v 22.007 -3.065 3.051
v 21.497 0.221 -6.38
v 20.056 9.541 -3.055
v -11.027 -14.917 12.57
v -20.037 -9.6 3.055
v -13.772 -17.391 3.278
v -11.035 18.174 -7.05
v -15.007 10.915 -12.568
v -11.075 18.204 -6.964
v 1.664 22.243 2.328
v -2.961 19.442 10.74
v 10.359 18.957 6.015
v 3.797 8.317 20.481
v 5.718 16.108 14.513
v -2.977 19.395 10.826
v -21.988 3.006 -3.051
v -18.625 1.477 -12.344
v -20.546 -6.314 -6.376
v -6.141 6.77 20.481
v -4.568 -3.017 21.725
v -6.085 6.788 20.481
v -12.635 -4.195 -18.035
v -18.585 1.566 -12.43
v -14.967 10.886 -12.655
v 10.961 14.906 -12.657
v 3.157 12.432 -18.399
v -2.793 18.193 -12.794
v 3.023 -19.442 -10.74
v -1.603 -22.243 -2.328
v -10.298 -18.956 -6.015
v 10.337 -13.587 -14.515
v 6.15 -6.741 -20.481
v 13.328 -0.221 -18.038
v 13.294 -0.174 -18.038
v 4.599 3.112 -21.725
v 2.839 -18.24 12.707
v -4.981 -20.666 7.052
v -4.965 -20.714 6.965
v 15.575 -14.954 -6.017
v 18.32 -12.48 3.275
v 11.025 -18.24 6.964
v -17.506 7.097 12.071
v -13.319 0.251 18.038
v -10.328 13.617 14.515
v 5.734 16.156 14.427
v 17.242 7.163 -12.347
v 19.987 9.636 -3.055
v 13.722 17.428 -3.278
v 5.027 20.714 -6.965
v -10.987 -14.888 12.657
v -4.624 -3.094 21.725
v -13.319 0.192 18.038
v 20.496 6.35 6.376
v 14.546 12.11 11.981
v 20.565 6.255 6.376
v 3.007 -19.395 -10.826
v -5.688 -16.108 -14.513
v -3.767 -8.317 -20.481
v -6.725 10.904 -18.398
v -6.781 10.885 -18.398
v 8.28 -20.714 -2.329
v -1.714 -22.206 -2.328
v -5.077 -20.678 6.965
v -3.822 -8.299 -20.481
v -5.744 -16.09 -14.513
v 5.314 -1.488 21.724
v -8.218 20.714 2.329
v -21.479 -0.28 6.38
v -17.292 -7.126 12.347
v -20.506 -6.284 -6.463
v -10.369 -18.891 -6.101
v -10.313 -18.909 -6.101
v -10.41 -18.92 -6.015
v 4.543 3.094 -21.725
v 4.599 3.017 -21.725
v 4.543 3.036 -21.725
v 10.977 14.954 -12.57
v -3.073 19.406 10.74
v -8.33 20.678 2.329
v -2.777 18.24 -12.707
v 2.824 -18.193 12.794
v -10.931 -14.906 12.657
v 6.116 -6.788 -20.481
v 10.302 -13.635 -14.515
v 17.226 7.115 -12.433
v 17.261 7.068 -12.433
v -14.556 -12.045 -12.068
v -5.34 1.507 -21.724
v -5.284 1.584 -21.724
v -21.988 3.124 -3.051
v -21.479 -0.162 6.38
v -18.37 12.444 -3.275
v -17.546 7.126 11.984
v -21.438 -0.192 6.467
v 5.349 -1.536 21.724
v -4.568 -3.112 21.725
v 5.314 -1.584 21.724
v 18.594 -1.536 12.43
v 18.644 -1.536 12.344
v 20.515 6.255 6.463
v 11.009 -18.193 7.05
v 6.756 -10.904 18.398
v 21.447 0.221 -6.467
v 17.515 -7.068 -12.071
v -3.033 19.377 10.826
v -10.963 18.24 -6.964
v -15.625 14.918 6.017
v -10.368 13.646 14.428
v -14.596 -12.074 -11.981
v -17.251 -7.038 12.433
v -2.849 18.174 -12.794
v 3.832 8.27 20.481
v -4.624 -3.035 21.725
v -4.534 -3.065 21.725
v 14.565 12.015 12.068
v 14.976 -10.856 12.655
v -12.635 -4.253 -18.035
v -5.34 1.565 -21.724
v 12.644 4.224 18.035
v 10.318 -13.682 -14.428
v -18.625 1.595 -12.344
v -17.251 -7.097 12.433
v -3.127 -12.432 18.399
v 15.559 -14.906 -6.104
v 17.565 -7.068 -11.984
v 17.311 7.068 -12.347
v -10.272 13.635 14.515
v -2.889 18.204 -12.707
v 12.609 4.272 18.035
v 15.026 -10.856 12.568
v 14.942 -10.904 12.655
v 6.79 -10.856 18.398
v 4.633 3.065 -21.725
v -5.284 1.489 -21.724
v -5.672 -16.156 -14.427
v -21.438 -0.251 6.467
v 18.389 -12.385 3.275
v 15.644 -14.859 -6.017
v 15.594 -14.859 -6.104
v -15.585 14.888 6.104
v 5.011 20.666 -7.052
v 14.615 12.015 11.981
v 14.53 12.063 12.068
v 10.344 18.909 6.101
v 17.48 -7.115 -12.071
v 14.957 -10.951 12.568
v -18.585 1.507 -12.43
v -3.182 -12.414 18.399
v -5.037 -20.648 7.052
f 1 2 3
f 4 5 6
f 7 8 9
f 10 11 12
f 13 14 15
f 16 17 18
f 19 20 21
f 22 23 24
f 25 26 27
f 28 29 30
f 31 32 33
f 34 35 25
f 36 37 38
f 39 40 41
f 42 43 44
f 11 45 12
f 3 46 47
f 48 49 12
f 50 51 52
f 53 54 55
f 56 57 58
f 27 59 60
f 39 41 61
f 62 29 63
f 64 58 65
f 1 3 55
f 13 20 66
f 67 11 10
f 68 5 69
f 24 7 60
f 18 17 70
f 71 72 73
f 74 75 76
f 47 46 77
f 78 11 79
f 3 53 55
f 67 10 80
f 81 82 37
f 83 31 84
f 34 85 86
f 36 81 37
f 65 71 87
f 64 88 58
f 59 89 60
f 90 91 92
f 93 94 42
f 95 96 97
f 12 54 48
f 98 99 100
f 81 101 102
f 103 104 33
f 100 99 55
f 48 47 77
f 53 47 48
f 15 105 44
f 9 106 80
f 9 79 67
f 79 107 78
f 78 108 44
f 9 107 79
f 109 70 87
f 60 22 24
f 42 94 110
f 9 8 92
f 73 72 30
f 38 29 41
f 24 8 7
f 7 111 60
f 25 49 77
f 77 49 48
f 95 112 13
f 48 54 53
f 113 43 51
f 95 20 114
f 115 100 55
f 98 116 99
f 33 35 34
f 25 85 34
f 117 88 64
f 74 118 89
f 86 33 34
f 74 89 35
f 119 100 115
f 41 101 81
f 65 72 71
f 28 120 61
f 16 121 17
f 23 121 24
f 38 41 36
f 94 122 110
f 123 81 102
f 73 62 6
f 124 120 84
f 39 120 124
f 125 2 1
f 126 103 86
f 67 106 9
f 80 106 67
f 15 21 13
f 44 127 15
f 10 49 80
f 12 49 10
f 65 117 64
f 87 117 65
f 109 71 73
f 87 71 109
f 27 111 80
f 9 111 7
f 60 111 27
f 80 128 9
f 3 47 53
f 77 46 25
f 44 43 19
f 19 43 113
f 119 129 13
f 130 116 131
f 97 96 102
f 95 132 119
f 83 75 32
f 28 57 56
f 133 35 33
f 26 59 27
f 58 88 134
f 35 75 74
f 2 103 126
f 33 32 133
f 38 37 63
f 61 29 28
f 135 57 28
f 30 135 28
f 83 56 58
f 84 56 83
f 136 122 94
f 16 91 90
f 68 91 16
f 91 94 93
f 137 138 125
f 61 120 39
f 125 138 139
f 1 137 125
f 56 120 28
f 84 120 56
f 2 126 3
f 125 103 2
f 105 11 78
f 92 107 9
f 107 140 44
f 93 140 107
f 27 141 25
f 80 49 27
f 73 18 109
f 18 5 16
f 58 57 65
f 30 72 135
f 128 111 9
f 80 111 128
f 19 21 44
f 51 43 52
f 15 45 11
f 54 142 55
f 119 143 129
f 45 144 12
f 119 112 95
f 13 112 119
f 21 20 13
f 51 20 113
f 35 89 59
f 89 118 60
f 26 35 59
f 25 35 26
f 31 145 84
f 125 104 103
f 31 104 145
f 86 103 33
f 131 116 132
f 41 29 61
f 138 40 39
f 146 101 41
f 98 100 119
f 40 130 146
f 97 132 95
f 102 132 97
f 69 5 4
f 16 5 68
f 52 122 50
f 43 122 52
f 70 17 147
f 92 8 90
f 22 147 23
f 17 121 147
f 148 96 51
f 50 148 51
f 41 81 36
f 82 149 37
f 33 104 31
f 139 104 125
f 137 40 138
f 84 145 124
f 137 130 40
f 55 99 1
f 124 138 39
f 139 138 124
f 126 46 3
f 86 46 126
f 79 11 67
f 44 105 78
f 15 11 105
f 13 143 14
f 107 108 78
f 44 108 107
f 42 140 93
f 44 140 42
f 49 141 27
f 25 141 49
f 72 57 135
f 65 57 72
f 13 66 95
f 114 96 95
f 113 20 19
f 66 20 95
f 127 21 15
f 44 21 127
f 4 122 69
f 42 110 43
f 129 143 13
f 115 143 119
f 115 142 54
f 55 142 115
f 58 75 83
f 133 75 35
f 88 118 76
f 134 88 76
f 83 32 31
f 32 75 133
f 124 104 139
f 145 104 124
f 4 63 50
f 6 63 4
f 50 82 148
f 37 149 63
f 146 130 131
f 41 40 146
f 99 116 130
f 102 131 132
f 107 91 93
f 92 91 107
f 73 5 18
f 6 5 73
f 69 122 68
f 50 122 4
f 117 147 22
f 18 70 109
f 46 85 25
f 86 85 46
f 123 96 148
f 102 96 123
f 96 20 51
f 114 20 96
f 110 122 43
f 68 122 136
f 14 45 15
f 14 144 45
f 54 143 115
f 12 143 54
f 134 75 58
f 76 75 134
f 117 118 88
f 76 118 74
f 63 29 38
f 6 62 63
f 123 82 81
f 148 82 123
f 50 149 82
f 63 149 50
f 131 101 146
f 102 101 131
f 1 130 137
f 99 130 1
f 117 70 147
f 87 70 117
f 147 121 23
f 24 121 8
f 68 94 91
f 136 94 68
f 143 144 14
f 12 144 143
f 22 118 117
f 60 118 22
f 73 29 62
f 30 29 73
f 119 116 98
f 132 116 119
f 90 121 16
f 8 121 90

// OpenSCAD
// Auto-generated OpenSCAD file

    inner_points = 10*[[-1.259410789492946, -0.42240038123952733, -1.794870479655828], [2.046504762626686, 0.6255067460513934, 0.637635414443013], [-1.854421209195522, 0.1536113534238329, -1.234359032872204], [1.4514943429241103, 1.2015184807147539, 1.1981468612266366], [-1.4515200766782592, -1.2015120195725224, -1.1981468612266366], [1.854395475441373, -0.1536048922816016, 1.234359032872204], [-2.046530496380835, -0.6255002849091622, -0.637635414443013], [1.259385055738797, 0.4224068423817587, 1.794870479655828], [0.31417594370023044, 1.2384936361857437, -1.8312550024527776], [1.0945967418742124, 1.485870952332926, -1.2570182557765466], [-0.2808344760023456, 1.8145053708491037, -1.2707435556691538], [0.4995863221716364, 2.061882686996286, -0.6965068089929228], [-0.49961205592578545, -2.061876225854055, 0.6965068089929228], [0.2808087422481966, -1.8144989097068722, 1.2707435556691538], [-1.0946224756283613, -1.4858644911906946, 1.2570182557765466], [-0.3142016774543795, -1.2384871750435122, 1.8312550024527776], [-0.37820250002835587, -0.8269704400581541, -2.0394006783765275], [1.7465044683929694, -0.7067647241245784, -1.1984257312475735], [-1.5544209149618051, 1.485882823599805, 0.6017021128183822], [0.57028605345952, 1.6060885395333806, 1.4426770599473364], [-0.5703117872136689, -1.6060820783911491, -1.4426770599473364], [1.5543951812076562, -1.4858763624575735, -0.6017021128183822], [-1.7465302021471183, 0.7067711852668096, 1.1984257312475735], [0.3781767662742068, 0.8269769012003854, 2.0394006783765275], [1.028700485321945, -1.358708430667177, -1.4428164949578044], [2.1906603710041623, -0.30649615012949877, 0.30508502415043076], [-2.1906861047583113, 0.3065026112717301, -0.30508502415043076], [-1.028726219076094, 1.3587148918094085, 1.4428164949578044], [-0.6740679891549891, 1.0856083139712862, -1.8311688268770863], [1.369100185991818, 1.7332505356903376, -0.3277975064895505], [-1.3691259197459669, -1.7332440745481061, 0.3277975064895505], [0.6740422554008402, -1.0856018528290547, 1.8311688268770863], [1.3278454158978878, -0.02214141130109711, -1.7950960902419872], [-0.8249225062463723, 2.0618886226297253, 0.23285337530454153], [0.8248967724922234, -2.0618821614874943, -0.23285337530454153], [-1.3278711496520368, 0.022147872443328425, 1.7950960902419872], [-0.5299123807775131, 0.15360541779039363, -2.1637192171696684], [1.9955823731681368, 0.9541352289341318, -0.30545006974705874], [-1.4926594635166213, 1.0856119823944965, -1.256792645190387], [1.0328352904290288, 1.886141793538235, 0.6014765022322227], [-1.0328610241831777, -1.8861353323960035, -0.6014765022322227], [1.4926337297624723, -1.085605521252265, 1.256792645190387], [-1.9956081069222857, -0.9541287677919006, 0.30545006974705874], [0.5298866470233642, -0.15359895664816234, 2.1637192171696684], [0.45833155207770654, 0.3064907400048513, -2.1638053927453598], [1.7210789290505317, 0.7067556455767204, -1.2346708190340547], [-1.0994259503639778, 1.8145090392723142, -0.6963673739824543], [0.1633214266088471, 2.214773944844183, 0.23276719972885052], [-0.1633471603629961, -2.214767483701952, -0.23276719972885052], [1.099400216609829, -1.8145025781300828, 0.6963673739824543], [-1.7211046628046807, -0.7067491844344892, 1.2346708190340547], [-0.4583572858318556, -0.30648427886262, 2.1638053927453598], [0.6100414328268636, -0.6740851178436963, -2.039486853952219], [2.1397379815456126, 0.022132332753239597, -0.6380004600396406], [-1.8289243590794104, 1.2385032402423934, -0.3275186364686139], [-0.29922781036066126, 1.9347206908393293, 1.073967757443964], [0.2992020766065122, -1.9347142296970978, -1.073967757443964], [1.8288986253252615, -1.238496779100162, 0.3275186364686139], [-2.1397637152997615, -0.02212587161100828, 0.6380004600396406], [-0.6100671665810126, 0.6740915789859275, 2.039486853952219]];

    outer_points = 10*[[1.4927529950860061, -1.085527078638233, -1.2567368199844755], [-0.8386734639348659, 0.12739675726887062, 2.065542268903897], [1.657229862487019, -0.12739675726887062, -1.491116100985575], [-0.674196596533853, 1.085527078638233, 1.8311629879027977], [0.674196596533853, -1.085527078638233, -1.8311629879027977], [-1.657229862487019, 0.12739675726887062, 1.491116100985575], [0.8386734639348659, -0.12739675726887062, -2.065542268903897], [-1.4927529950860061, 1.085527078638233, 1.2567368199844755], [1.9266794045769358, -0.6222313990866195, 0.94170193557705], [1.3763042757063821, -0.33589892228274276, 1.725985640780772], [2.0911562719779484, 0.33589892228274276, 0.7073226545759508], [1.540781143107395, 0.6222313990866195, 1.491606359779673], [-1.540781143107395, -0.6222313990866195, -1.491606359779673], [-2.0911562719779484, -0.33589892228274276, -0.7073226545759508], [-1.3763042757063821, 0.33589892228274276, -1.725985640780772], [-1.9266794045769358, 0.6222313990866195, -0.94170193557705], [1.0995051723360993, -1.8144531141326083, -0.6963592823538965], [-0.21427696067765517, -1.8861863479102305, 1.175778219980113], [1.0328333592298082, 1.8861863479102305, -0.6013520520617905], [-0.2809487737839464, 1.8144531141326083, 1.2707854502722191], [0.2809487737839464, -1.8144531141326083, -1.2707854502722191], [-1.0328333592298082, -1.8861863479102305, 0.6013520520617905], [0.21427696067765517, 1.8861863479102305, -1.175778219980113], [-1.0995051723360993, 1.8144531141326083, 0.6963592823538965], [-0.16328800482180753, -2.2147827487686067, 0.23268515366923626], [-1.2109409760176137, -0.7362285569187418, 1.725589013084705], [1.2109409760176137, 0.7362285569187418, -1.725589013084705], [0.16328800482180753, 2.2147827487686067, -0.23268515366923626], [2.2012328328080537, -0.37481407817774504, 0.01250600125489898], [0.7603320388623411, 0.37481407817774504, 2.0657873983009463], [-0.7603320388623411, -0.37481407817774504, -2.0657873983009463], [-2.2012328328080537, 0.37481407817774504, -0.01250600125489898], [0.773962788249134, -1.7332740341831063, 1.1759297182791308], [1.369045684869108, 1.7332740341831063, 0.3279375133583916], [-1.369045684869108, -1.7332740341831063, -0.3279375133583916], [-0.773962788249134, 1.7332740341831063, -1.1759297182791308], [1.828965320725306, -1.2384393923653574, -0.32744725456429347], [0.047913990574987686, -0.31184803326213056, 2.2105481291203573], [2.0950944825432543, 0.31184803326213056, -0.7066808974828345], [0.3140431523929359, 1.2384393923653574, 1.831314486201816], [-0.3140431523929359, -1.2384393923653574, -1.831314486201816], [-2.0950944825432543, -0.31184803326213056, 0.7066808974828345], [-0.047913990574987686, 0.31184803326213056, -2.2105481291203573], [-1.828965320725306, 1.2384393923653574, 0.32744725456429347], [1.5544118924941879, -1.4858567132742317, 0.6017486797578577], [0.6638862274190287, -1.0225610337226185, 1.8707463716001829], [1.985017921713149, 1.0225610337226185, -0.011864244161782445], [1.0944922566379898, 1.4858567132742317, 1.2571334476805427], [-1.0944922566379898, -1.4858567132742317, -1.2571334476805427], [-1.985017921713149, -1.0225610337226185, 0.011864244161782445], [-0.6638862274190287, 1.0225610337226185, -1.8707463716001829], [-1.5544118924941879, 1.4858567132742317, -0.6017486797578577], [0.8249517441049814, -2.0618704350414827, 0.23283665196825437], [-0.3243535215077604, -1.175473347449743, 1.870594873301165], [1.6488055960738492, 1.175473347449743, -0.9411538095819647], [0.4995003304611074, 2.0618704350414827, 0.6966044117509458], [-0.4995003304611074, -2.0618704350414827, -0.6966044117509458], [-1.6488055960738492, -1.175473347449743, 0.9411538095819647], [0.3243535215077604, 1.175473347449743, -1.870594873301165], [-0.8249517441049814, 2.0618704350414827, -0.23283665196825437]];

    // Convex hull for inner set (I)
    module inner_hull() {
        hull() {
            for (p = inner_points) {
                translate(p) sphere(r=0.1);
            }
        }
    }

    // Convex hull for outer set (O) minus inner hull (O \ I)
    module outer_minus_inner() {
        difference() {
            hull() {
                for (p = outer_points) {
                    translate(p) sphere(r=0.1);
                }
            }
            inner_hull(); // Subtract inner hull
        }
    }

    // Convex hull for outer set (O) minus all translated inner hulls
    module outer_minus_AllTranslationInner() {
        difference() {
            hull() {
                for (p = outer_points) {
                    translate(p) sphere(r=0.1);
                }
            }
            hull() {
                translate([0,0,50]) inner_hull();
                translate([0,0,-50]) inner_hull();
            }; // Subtract translated inner hulls
        }
    }

    // Difference between outer_minus_inner and outer_minus_AllTranslationInner
    module outer_minus_inner_diff() {
        difference() {
            // Outer minus inner
            difference() {
                hull() {
                    for (p = outer_points) {
                        translate(p) sphere(r=0.1);
                    }
                }
                inner_hull();
            }

            // Subtract Outer minus AllTranslationInner
            difference() {
                hull() {
                    for (p = outer_points) {
                        translate(p) sphere(r=0.1);
                    }
                }
                hull() {
                    translate([0,0,50]) inner_hull();
                    translate([0,0,-50]) inner_hull();
                };
            }
        }
    }

    // Rendering all with colors applied
    color([1, 0, 0, 0.5]) inner_hull(); // Transparent red
    
